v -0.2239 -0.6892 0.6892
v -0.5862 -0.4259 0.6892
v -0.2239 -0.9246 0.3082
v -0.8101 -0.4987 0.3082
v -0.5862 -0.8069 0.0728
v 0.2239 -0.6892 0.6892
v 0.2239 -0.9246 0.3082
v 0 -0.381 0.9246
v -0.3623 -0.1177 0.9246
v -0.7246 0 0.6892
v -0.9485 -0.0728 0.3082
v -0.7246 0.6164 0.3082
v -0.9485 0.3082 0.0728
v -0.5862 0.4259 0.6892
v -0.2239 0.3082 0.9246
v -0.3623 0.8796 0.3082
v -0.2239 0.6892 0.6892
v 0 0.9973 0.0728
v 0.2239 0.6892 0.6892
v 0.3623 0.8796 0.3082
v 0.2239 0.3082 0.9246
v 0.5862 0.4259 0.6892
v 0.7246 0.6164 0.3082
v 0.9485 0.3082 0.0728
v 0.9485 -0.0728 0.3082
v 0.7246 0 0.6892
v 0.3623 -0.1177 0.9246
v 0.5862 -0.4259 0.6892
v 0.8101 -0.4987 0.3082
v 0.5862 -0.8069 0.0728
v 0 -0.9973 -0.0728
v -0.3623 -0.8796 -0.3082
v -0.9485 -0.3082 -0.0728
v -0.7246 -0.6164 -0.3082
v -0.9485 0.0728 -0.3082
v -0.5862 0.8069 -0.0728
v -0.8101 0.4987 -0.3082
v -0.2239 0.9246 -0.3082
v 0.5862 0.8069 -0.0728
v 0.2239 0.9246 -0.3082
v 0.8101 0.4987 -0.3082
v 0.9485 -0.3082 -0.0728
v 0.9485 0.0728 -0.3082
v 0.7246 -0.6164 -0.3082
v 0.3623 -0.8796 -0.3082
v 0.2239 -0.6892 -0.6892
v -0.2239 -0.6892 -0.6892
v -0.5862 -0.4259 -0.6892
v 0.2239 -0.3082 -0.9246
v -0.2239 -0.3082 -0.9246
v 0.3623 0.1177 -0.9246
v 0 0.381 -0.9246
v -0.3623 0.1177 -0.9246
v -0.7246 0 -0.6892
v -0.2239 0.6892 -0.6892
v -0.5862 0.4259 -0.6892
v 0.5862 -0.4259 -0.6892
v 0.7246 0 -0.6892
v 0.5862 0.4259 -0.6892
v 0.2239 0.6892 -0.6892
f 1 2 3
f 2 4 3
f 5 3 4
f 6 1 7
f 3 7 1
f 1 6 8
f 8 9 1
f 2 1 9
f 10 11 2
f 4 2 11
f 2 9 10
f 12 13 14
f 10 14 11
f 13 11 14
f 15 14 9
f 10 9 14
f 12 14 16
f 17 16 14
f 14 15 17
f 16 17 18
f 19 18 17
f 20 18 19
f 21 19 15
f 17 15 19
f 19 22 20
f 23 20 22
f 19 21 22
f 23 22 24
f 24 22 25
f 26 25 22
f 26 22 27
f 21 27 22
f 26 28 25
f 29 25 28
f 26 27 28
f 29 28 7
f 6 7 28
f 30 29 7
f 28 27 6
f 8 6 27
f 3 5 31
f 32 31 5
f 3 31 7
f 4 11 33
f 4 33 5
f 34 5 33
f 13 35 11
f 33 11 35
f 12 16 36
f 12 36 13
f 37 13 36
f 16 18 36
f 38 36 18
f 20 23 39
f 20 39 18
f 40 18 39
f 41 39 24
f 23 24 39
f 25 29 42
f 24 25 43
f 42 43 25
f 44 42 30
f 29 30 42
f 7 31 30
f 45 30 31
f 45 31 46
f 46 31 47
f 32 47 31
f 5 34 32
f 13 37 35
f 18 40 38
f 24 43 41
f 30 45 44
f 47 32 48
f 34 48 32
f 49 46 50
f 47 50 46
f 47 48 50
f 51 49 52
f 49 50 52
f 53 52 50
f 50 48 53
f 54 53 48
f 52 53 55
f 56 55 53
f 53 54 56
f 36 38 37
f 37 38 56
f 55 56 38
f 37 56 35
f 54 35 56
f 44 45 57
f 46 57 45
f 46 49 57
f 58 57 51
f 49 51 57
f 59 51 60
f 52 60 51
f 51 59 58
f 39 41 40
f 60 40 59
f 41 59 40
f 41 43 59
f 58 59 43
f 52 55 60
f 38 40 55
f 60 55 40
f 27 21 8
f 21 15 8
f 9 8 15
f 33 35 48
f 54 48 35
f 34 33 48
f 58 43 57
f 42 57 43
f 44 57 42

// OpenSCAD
polyhedron( points = [[-0.223918979554928, -0.689151757668433, 0.689151757387289], [-0.586227499480956, -0.425919209643732, 0.689151757387289], [-0.724617039910831, -2.91804699286042e-11, 0.689151757387289], [-0.586227500090741, 0.425919209572942, 0.689151757387289], [-0.223918980541581, 0.689151757565109, 0.689151757387289], [0.223918978690173, 0.689151757565114, 0.689151757387289], [0.586227498639836, 0.425919209572942, 0.689151757387289], [0.724617039107957, -2.91804699286042e-11, 0.689151757387289], [0.586227499326116, -0.42591920964373, 0.689151757387289], [0.22391897980059, -0.689151757668433, 0.689151757387289], [-0.223918979534821, -0.924594106311171, 0.308198035271352], [-0.810146479144428, -0.498674896699662, 0.308198035262522], [-0.948536019210901, -0.0727556869602728, 0.308198035213155], [-0.724617039426481, 0.616396070432454, 0.308198035247811], [-0.362308519620048, 0.879628618246503, 0.308198035213155], [0.362308520081049, 0.879628618164105, 0.308198035247811], [0.72461703981705, 0.616396070253117, 0.308198035213155], [0.948536019444745, -0.0727556871905332, 0.308198035247811], [0.810146479273572, -0.498674896576793, 0.308198035213155], [0.223918979751085, -0.924594106295716, 0.30819803529636], [1.16505896028432e-11, -0.997349792578876, -0.0727556870217536], [-0.586227499512168, -0.806872932063635, 0.0727556869095775], [-0.948536019020091, 0.308198035269162, 0.0727556867803315], [2.77534238510601e-10, 0.997349792387848, 0.0727556867697042], [0.948536019456349, 0.308198034910762, 0.0727556867697042], [0.586227499674315, -0.806872931497531, 0.0727556866789723], [-0.362308519781581, -0.879628618938864, -0.308198035134949], [-0.223918979478824, -0.689151757815395, -0.689151757198877], [-0.223918979309157, -0.308198035567975, -0.924594105602598], [-0.362308519337384, 0.117721174053708, -0.924594105651968], [-0.586227498963112, 0.425919209444659, -0.689151757328118], [-0.810146478700231, 0.498674896357976, -0.308198035294707], [0.362308520101829, -0.87962861800872, -0.308198035574776], [0.223918980021885, -0.689151756739457, -0.689151757795992], [0.223918980054626, -0.308198034620178, -0.924594106245004], [0.362308520187559, 0.117721174648374, -0.924594106210346], [0.586227499780278, 0.42591920959609, -0.689151757705265], [0.810146479359297, 0.49867489614537, -0.308198035462628], [-1.48194183162529e-09, 0.380953723836188, -0.924594104004744], [-0.223918981444935, 0.689151758442088, -0.689151755035009], [0.223918979494449, 0.689151757092125, -0.68915175761314], [-0.223918979312719, 0.924594105166543, -0.308198035207051], [0.223918980064595, 0.924594106099564, -0.30819803531575], [0.586227499873115, 0.806872931874196, -0.0727556866915761], [-0.586227499757242, 0.806872931779895, -0.0727556866915761], [1.34438831545362e-10, -0.380953721892937, 0.924594105469935], [0.362308519403959, -0.11772117426166, 0.92459410571646], [0.223918978941093, 0.308198035280143, 0.92459410571646], [-0.223918980231666, 0.308198035266493, 0.924594105716461], [-0.362308519725219, -0.117721174031588, 0.924594105412368], [-0.948536018816947, -0.308198035053134, -0.0727556871269686], [-0.948536018924066, 0.0727556868103202, -0.308198035318151], [-0.724617039214228, -1.06338454066687e-10, -0.689151757297611], [-0.586227499210035, -0.425919209673801, -0.689151757236038], [-0.724617039225706, -0.616396070360649, -0.308198035308061], [0.948536018920573, -0.308198035452167, -0.0727556871389931], [0.724617039777466, -0.61639607025194, -0.308198035431535], [0.586227499721553, -0.425919208996009, -0.689151757598796], [0.724617039842057, 2.14550854985303e-10, -0.689151757551934], [0.948536018932177, 0.0727556865793432, -0.308198035445247]], faces = [[0, 1, 11, 21, 10], [0, 10, 19, 9], [0, 9, 45], [0, 45, 49, 1], [1, 2, 12, 11], [1, 49, 2], [2, 3, 13, 22, 12], [2, 49, 48, 3], [3, 4, 14, 13], [3, 48, 4], [4, 5, 15, 23, 14], [4, 48, 47, 5], [5, 6, 16, 15], [5, 47, 6], [6, 7, 17, 24, 16], [6, 47, 46, 7], [7, 8, 18, 17], [7, 46, 8], [8, 9, 19, 25, 18], [8, 46, 45, 9], [10, 21, 26, 20], [10, 20, 19], [11, 12, 50], [11, 50, 54, 21], [12, 22, 51, 50], [13, 14, 44], [13, 44, 31, 22], [14, 23, 41, 44], [15, 16, 43], [15, 43, 42, 23], [16, 24, 37, 43], [17, 18, 55], [17, 55, 59, 24], [18, 25, 56, 55], [19, 20, 32, 25], [20, 26, 27, 33, 32], [21, 54, 26], [22, 31, 51], [23, 42, 41], [24, 59, 37], [25, 32, 56], [26, 54, 53, 27], [27, 28, 34, 33], [27, 53, 28], [28, 29, 38, 35, 34], [28, 53, 52, 29], [29, 30, 39, 38], [29, 52, 30], [30, 31, 44, 41, 39], [30, 52, 51, 31], [32, 33, 57, 56], [33, 34, 57], [34, 35, 58, 57], [35, 38, 40, 36], [35, 36, 58], [36, 40, 42, 43, 37], [36, 37, 59, 58], [38, 39, 40], [39, 41, 42, 40], [45, 46, 47, 48, 49], [50, 51, 52, 53, 54], [55, 56, 57, 58, 59]]);
